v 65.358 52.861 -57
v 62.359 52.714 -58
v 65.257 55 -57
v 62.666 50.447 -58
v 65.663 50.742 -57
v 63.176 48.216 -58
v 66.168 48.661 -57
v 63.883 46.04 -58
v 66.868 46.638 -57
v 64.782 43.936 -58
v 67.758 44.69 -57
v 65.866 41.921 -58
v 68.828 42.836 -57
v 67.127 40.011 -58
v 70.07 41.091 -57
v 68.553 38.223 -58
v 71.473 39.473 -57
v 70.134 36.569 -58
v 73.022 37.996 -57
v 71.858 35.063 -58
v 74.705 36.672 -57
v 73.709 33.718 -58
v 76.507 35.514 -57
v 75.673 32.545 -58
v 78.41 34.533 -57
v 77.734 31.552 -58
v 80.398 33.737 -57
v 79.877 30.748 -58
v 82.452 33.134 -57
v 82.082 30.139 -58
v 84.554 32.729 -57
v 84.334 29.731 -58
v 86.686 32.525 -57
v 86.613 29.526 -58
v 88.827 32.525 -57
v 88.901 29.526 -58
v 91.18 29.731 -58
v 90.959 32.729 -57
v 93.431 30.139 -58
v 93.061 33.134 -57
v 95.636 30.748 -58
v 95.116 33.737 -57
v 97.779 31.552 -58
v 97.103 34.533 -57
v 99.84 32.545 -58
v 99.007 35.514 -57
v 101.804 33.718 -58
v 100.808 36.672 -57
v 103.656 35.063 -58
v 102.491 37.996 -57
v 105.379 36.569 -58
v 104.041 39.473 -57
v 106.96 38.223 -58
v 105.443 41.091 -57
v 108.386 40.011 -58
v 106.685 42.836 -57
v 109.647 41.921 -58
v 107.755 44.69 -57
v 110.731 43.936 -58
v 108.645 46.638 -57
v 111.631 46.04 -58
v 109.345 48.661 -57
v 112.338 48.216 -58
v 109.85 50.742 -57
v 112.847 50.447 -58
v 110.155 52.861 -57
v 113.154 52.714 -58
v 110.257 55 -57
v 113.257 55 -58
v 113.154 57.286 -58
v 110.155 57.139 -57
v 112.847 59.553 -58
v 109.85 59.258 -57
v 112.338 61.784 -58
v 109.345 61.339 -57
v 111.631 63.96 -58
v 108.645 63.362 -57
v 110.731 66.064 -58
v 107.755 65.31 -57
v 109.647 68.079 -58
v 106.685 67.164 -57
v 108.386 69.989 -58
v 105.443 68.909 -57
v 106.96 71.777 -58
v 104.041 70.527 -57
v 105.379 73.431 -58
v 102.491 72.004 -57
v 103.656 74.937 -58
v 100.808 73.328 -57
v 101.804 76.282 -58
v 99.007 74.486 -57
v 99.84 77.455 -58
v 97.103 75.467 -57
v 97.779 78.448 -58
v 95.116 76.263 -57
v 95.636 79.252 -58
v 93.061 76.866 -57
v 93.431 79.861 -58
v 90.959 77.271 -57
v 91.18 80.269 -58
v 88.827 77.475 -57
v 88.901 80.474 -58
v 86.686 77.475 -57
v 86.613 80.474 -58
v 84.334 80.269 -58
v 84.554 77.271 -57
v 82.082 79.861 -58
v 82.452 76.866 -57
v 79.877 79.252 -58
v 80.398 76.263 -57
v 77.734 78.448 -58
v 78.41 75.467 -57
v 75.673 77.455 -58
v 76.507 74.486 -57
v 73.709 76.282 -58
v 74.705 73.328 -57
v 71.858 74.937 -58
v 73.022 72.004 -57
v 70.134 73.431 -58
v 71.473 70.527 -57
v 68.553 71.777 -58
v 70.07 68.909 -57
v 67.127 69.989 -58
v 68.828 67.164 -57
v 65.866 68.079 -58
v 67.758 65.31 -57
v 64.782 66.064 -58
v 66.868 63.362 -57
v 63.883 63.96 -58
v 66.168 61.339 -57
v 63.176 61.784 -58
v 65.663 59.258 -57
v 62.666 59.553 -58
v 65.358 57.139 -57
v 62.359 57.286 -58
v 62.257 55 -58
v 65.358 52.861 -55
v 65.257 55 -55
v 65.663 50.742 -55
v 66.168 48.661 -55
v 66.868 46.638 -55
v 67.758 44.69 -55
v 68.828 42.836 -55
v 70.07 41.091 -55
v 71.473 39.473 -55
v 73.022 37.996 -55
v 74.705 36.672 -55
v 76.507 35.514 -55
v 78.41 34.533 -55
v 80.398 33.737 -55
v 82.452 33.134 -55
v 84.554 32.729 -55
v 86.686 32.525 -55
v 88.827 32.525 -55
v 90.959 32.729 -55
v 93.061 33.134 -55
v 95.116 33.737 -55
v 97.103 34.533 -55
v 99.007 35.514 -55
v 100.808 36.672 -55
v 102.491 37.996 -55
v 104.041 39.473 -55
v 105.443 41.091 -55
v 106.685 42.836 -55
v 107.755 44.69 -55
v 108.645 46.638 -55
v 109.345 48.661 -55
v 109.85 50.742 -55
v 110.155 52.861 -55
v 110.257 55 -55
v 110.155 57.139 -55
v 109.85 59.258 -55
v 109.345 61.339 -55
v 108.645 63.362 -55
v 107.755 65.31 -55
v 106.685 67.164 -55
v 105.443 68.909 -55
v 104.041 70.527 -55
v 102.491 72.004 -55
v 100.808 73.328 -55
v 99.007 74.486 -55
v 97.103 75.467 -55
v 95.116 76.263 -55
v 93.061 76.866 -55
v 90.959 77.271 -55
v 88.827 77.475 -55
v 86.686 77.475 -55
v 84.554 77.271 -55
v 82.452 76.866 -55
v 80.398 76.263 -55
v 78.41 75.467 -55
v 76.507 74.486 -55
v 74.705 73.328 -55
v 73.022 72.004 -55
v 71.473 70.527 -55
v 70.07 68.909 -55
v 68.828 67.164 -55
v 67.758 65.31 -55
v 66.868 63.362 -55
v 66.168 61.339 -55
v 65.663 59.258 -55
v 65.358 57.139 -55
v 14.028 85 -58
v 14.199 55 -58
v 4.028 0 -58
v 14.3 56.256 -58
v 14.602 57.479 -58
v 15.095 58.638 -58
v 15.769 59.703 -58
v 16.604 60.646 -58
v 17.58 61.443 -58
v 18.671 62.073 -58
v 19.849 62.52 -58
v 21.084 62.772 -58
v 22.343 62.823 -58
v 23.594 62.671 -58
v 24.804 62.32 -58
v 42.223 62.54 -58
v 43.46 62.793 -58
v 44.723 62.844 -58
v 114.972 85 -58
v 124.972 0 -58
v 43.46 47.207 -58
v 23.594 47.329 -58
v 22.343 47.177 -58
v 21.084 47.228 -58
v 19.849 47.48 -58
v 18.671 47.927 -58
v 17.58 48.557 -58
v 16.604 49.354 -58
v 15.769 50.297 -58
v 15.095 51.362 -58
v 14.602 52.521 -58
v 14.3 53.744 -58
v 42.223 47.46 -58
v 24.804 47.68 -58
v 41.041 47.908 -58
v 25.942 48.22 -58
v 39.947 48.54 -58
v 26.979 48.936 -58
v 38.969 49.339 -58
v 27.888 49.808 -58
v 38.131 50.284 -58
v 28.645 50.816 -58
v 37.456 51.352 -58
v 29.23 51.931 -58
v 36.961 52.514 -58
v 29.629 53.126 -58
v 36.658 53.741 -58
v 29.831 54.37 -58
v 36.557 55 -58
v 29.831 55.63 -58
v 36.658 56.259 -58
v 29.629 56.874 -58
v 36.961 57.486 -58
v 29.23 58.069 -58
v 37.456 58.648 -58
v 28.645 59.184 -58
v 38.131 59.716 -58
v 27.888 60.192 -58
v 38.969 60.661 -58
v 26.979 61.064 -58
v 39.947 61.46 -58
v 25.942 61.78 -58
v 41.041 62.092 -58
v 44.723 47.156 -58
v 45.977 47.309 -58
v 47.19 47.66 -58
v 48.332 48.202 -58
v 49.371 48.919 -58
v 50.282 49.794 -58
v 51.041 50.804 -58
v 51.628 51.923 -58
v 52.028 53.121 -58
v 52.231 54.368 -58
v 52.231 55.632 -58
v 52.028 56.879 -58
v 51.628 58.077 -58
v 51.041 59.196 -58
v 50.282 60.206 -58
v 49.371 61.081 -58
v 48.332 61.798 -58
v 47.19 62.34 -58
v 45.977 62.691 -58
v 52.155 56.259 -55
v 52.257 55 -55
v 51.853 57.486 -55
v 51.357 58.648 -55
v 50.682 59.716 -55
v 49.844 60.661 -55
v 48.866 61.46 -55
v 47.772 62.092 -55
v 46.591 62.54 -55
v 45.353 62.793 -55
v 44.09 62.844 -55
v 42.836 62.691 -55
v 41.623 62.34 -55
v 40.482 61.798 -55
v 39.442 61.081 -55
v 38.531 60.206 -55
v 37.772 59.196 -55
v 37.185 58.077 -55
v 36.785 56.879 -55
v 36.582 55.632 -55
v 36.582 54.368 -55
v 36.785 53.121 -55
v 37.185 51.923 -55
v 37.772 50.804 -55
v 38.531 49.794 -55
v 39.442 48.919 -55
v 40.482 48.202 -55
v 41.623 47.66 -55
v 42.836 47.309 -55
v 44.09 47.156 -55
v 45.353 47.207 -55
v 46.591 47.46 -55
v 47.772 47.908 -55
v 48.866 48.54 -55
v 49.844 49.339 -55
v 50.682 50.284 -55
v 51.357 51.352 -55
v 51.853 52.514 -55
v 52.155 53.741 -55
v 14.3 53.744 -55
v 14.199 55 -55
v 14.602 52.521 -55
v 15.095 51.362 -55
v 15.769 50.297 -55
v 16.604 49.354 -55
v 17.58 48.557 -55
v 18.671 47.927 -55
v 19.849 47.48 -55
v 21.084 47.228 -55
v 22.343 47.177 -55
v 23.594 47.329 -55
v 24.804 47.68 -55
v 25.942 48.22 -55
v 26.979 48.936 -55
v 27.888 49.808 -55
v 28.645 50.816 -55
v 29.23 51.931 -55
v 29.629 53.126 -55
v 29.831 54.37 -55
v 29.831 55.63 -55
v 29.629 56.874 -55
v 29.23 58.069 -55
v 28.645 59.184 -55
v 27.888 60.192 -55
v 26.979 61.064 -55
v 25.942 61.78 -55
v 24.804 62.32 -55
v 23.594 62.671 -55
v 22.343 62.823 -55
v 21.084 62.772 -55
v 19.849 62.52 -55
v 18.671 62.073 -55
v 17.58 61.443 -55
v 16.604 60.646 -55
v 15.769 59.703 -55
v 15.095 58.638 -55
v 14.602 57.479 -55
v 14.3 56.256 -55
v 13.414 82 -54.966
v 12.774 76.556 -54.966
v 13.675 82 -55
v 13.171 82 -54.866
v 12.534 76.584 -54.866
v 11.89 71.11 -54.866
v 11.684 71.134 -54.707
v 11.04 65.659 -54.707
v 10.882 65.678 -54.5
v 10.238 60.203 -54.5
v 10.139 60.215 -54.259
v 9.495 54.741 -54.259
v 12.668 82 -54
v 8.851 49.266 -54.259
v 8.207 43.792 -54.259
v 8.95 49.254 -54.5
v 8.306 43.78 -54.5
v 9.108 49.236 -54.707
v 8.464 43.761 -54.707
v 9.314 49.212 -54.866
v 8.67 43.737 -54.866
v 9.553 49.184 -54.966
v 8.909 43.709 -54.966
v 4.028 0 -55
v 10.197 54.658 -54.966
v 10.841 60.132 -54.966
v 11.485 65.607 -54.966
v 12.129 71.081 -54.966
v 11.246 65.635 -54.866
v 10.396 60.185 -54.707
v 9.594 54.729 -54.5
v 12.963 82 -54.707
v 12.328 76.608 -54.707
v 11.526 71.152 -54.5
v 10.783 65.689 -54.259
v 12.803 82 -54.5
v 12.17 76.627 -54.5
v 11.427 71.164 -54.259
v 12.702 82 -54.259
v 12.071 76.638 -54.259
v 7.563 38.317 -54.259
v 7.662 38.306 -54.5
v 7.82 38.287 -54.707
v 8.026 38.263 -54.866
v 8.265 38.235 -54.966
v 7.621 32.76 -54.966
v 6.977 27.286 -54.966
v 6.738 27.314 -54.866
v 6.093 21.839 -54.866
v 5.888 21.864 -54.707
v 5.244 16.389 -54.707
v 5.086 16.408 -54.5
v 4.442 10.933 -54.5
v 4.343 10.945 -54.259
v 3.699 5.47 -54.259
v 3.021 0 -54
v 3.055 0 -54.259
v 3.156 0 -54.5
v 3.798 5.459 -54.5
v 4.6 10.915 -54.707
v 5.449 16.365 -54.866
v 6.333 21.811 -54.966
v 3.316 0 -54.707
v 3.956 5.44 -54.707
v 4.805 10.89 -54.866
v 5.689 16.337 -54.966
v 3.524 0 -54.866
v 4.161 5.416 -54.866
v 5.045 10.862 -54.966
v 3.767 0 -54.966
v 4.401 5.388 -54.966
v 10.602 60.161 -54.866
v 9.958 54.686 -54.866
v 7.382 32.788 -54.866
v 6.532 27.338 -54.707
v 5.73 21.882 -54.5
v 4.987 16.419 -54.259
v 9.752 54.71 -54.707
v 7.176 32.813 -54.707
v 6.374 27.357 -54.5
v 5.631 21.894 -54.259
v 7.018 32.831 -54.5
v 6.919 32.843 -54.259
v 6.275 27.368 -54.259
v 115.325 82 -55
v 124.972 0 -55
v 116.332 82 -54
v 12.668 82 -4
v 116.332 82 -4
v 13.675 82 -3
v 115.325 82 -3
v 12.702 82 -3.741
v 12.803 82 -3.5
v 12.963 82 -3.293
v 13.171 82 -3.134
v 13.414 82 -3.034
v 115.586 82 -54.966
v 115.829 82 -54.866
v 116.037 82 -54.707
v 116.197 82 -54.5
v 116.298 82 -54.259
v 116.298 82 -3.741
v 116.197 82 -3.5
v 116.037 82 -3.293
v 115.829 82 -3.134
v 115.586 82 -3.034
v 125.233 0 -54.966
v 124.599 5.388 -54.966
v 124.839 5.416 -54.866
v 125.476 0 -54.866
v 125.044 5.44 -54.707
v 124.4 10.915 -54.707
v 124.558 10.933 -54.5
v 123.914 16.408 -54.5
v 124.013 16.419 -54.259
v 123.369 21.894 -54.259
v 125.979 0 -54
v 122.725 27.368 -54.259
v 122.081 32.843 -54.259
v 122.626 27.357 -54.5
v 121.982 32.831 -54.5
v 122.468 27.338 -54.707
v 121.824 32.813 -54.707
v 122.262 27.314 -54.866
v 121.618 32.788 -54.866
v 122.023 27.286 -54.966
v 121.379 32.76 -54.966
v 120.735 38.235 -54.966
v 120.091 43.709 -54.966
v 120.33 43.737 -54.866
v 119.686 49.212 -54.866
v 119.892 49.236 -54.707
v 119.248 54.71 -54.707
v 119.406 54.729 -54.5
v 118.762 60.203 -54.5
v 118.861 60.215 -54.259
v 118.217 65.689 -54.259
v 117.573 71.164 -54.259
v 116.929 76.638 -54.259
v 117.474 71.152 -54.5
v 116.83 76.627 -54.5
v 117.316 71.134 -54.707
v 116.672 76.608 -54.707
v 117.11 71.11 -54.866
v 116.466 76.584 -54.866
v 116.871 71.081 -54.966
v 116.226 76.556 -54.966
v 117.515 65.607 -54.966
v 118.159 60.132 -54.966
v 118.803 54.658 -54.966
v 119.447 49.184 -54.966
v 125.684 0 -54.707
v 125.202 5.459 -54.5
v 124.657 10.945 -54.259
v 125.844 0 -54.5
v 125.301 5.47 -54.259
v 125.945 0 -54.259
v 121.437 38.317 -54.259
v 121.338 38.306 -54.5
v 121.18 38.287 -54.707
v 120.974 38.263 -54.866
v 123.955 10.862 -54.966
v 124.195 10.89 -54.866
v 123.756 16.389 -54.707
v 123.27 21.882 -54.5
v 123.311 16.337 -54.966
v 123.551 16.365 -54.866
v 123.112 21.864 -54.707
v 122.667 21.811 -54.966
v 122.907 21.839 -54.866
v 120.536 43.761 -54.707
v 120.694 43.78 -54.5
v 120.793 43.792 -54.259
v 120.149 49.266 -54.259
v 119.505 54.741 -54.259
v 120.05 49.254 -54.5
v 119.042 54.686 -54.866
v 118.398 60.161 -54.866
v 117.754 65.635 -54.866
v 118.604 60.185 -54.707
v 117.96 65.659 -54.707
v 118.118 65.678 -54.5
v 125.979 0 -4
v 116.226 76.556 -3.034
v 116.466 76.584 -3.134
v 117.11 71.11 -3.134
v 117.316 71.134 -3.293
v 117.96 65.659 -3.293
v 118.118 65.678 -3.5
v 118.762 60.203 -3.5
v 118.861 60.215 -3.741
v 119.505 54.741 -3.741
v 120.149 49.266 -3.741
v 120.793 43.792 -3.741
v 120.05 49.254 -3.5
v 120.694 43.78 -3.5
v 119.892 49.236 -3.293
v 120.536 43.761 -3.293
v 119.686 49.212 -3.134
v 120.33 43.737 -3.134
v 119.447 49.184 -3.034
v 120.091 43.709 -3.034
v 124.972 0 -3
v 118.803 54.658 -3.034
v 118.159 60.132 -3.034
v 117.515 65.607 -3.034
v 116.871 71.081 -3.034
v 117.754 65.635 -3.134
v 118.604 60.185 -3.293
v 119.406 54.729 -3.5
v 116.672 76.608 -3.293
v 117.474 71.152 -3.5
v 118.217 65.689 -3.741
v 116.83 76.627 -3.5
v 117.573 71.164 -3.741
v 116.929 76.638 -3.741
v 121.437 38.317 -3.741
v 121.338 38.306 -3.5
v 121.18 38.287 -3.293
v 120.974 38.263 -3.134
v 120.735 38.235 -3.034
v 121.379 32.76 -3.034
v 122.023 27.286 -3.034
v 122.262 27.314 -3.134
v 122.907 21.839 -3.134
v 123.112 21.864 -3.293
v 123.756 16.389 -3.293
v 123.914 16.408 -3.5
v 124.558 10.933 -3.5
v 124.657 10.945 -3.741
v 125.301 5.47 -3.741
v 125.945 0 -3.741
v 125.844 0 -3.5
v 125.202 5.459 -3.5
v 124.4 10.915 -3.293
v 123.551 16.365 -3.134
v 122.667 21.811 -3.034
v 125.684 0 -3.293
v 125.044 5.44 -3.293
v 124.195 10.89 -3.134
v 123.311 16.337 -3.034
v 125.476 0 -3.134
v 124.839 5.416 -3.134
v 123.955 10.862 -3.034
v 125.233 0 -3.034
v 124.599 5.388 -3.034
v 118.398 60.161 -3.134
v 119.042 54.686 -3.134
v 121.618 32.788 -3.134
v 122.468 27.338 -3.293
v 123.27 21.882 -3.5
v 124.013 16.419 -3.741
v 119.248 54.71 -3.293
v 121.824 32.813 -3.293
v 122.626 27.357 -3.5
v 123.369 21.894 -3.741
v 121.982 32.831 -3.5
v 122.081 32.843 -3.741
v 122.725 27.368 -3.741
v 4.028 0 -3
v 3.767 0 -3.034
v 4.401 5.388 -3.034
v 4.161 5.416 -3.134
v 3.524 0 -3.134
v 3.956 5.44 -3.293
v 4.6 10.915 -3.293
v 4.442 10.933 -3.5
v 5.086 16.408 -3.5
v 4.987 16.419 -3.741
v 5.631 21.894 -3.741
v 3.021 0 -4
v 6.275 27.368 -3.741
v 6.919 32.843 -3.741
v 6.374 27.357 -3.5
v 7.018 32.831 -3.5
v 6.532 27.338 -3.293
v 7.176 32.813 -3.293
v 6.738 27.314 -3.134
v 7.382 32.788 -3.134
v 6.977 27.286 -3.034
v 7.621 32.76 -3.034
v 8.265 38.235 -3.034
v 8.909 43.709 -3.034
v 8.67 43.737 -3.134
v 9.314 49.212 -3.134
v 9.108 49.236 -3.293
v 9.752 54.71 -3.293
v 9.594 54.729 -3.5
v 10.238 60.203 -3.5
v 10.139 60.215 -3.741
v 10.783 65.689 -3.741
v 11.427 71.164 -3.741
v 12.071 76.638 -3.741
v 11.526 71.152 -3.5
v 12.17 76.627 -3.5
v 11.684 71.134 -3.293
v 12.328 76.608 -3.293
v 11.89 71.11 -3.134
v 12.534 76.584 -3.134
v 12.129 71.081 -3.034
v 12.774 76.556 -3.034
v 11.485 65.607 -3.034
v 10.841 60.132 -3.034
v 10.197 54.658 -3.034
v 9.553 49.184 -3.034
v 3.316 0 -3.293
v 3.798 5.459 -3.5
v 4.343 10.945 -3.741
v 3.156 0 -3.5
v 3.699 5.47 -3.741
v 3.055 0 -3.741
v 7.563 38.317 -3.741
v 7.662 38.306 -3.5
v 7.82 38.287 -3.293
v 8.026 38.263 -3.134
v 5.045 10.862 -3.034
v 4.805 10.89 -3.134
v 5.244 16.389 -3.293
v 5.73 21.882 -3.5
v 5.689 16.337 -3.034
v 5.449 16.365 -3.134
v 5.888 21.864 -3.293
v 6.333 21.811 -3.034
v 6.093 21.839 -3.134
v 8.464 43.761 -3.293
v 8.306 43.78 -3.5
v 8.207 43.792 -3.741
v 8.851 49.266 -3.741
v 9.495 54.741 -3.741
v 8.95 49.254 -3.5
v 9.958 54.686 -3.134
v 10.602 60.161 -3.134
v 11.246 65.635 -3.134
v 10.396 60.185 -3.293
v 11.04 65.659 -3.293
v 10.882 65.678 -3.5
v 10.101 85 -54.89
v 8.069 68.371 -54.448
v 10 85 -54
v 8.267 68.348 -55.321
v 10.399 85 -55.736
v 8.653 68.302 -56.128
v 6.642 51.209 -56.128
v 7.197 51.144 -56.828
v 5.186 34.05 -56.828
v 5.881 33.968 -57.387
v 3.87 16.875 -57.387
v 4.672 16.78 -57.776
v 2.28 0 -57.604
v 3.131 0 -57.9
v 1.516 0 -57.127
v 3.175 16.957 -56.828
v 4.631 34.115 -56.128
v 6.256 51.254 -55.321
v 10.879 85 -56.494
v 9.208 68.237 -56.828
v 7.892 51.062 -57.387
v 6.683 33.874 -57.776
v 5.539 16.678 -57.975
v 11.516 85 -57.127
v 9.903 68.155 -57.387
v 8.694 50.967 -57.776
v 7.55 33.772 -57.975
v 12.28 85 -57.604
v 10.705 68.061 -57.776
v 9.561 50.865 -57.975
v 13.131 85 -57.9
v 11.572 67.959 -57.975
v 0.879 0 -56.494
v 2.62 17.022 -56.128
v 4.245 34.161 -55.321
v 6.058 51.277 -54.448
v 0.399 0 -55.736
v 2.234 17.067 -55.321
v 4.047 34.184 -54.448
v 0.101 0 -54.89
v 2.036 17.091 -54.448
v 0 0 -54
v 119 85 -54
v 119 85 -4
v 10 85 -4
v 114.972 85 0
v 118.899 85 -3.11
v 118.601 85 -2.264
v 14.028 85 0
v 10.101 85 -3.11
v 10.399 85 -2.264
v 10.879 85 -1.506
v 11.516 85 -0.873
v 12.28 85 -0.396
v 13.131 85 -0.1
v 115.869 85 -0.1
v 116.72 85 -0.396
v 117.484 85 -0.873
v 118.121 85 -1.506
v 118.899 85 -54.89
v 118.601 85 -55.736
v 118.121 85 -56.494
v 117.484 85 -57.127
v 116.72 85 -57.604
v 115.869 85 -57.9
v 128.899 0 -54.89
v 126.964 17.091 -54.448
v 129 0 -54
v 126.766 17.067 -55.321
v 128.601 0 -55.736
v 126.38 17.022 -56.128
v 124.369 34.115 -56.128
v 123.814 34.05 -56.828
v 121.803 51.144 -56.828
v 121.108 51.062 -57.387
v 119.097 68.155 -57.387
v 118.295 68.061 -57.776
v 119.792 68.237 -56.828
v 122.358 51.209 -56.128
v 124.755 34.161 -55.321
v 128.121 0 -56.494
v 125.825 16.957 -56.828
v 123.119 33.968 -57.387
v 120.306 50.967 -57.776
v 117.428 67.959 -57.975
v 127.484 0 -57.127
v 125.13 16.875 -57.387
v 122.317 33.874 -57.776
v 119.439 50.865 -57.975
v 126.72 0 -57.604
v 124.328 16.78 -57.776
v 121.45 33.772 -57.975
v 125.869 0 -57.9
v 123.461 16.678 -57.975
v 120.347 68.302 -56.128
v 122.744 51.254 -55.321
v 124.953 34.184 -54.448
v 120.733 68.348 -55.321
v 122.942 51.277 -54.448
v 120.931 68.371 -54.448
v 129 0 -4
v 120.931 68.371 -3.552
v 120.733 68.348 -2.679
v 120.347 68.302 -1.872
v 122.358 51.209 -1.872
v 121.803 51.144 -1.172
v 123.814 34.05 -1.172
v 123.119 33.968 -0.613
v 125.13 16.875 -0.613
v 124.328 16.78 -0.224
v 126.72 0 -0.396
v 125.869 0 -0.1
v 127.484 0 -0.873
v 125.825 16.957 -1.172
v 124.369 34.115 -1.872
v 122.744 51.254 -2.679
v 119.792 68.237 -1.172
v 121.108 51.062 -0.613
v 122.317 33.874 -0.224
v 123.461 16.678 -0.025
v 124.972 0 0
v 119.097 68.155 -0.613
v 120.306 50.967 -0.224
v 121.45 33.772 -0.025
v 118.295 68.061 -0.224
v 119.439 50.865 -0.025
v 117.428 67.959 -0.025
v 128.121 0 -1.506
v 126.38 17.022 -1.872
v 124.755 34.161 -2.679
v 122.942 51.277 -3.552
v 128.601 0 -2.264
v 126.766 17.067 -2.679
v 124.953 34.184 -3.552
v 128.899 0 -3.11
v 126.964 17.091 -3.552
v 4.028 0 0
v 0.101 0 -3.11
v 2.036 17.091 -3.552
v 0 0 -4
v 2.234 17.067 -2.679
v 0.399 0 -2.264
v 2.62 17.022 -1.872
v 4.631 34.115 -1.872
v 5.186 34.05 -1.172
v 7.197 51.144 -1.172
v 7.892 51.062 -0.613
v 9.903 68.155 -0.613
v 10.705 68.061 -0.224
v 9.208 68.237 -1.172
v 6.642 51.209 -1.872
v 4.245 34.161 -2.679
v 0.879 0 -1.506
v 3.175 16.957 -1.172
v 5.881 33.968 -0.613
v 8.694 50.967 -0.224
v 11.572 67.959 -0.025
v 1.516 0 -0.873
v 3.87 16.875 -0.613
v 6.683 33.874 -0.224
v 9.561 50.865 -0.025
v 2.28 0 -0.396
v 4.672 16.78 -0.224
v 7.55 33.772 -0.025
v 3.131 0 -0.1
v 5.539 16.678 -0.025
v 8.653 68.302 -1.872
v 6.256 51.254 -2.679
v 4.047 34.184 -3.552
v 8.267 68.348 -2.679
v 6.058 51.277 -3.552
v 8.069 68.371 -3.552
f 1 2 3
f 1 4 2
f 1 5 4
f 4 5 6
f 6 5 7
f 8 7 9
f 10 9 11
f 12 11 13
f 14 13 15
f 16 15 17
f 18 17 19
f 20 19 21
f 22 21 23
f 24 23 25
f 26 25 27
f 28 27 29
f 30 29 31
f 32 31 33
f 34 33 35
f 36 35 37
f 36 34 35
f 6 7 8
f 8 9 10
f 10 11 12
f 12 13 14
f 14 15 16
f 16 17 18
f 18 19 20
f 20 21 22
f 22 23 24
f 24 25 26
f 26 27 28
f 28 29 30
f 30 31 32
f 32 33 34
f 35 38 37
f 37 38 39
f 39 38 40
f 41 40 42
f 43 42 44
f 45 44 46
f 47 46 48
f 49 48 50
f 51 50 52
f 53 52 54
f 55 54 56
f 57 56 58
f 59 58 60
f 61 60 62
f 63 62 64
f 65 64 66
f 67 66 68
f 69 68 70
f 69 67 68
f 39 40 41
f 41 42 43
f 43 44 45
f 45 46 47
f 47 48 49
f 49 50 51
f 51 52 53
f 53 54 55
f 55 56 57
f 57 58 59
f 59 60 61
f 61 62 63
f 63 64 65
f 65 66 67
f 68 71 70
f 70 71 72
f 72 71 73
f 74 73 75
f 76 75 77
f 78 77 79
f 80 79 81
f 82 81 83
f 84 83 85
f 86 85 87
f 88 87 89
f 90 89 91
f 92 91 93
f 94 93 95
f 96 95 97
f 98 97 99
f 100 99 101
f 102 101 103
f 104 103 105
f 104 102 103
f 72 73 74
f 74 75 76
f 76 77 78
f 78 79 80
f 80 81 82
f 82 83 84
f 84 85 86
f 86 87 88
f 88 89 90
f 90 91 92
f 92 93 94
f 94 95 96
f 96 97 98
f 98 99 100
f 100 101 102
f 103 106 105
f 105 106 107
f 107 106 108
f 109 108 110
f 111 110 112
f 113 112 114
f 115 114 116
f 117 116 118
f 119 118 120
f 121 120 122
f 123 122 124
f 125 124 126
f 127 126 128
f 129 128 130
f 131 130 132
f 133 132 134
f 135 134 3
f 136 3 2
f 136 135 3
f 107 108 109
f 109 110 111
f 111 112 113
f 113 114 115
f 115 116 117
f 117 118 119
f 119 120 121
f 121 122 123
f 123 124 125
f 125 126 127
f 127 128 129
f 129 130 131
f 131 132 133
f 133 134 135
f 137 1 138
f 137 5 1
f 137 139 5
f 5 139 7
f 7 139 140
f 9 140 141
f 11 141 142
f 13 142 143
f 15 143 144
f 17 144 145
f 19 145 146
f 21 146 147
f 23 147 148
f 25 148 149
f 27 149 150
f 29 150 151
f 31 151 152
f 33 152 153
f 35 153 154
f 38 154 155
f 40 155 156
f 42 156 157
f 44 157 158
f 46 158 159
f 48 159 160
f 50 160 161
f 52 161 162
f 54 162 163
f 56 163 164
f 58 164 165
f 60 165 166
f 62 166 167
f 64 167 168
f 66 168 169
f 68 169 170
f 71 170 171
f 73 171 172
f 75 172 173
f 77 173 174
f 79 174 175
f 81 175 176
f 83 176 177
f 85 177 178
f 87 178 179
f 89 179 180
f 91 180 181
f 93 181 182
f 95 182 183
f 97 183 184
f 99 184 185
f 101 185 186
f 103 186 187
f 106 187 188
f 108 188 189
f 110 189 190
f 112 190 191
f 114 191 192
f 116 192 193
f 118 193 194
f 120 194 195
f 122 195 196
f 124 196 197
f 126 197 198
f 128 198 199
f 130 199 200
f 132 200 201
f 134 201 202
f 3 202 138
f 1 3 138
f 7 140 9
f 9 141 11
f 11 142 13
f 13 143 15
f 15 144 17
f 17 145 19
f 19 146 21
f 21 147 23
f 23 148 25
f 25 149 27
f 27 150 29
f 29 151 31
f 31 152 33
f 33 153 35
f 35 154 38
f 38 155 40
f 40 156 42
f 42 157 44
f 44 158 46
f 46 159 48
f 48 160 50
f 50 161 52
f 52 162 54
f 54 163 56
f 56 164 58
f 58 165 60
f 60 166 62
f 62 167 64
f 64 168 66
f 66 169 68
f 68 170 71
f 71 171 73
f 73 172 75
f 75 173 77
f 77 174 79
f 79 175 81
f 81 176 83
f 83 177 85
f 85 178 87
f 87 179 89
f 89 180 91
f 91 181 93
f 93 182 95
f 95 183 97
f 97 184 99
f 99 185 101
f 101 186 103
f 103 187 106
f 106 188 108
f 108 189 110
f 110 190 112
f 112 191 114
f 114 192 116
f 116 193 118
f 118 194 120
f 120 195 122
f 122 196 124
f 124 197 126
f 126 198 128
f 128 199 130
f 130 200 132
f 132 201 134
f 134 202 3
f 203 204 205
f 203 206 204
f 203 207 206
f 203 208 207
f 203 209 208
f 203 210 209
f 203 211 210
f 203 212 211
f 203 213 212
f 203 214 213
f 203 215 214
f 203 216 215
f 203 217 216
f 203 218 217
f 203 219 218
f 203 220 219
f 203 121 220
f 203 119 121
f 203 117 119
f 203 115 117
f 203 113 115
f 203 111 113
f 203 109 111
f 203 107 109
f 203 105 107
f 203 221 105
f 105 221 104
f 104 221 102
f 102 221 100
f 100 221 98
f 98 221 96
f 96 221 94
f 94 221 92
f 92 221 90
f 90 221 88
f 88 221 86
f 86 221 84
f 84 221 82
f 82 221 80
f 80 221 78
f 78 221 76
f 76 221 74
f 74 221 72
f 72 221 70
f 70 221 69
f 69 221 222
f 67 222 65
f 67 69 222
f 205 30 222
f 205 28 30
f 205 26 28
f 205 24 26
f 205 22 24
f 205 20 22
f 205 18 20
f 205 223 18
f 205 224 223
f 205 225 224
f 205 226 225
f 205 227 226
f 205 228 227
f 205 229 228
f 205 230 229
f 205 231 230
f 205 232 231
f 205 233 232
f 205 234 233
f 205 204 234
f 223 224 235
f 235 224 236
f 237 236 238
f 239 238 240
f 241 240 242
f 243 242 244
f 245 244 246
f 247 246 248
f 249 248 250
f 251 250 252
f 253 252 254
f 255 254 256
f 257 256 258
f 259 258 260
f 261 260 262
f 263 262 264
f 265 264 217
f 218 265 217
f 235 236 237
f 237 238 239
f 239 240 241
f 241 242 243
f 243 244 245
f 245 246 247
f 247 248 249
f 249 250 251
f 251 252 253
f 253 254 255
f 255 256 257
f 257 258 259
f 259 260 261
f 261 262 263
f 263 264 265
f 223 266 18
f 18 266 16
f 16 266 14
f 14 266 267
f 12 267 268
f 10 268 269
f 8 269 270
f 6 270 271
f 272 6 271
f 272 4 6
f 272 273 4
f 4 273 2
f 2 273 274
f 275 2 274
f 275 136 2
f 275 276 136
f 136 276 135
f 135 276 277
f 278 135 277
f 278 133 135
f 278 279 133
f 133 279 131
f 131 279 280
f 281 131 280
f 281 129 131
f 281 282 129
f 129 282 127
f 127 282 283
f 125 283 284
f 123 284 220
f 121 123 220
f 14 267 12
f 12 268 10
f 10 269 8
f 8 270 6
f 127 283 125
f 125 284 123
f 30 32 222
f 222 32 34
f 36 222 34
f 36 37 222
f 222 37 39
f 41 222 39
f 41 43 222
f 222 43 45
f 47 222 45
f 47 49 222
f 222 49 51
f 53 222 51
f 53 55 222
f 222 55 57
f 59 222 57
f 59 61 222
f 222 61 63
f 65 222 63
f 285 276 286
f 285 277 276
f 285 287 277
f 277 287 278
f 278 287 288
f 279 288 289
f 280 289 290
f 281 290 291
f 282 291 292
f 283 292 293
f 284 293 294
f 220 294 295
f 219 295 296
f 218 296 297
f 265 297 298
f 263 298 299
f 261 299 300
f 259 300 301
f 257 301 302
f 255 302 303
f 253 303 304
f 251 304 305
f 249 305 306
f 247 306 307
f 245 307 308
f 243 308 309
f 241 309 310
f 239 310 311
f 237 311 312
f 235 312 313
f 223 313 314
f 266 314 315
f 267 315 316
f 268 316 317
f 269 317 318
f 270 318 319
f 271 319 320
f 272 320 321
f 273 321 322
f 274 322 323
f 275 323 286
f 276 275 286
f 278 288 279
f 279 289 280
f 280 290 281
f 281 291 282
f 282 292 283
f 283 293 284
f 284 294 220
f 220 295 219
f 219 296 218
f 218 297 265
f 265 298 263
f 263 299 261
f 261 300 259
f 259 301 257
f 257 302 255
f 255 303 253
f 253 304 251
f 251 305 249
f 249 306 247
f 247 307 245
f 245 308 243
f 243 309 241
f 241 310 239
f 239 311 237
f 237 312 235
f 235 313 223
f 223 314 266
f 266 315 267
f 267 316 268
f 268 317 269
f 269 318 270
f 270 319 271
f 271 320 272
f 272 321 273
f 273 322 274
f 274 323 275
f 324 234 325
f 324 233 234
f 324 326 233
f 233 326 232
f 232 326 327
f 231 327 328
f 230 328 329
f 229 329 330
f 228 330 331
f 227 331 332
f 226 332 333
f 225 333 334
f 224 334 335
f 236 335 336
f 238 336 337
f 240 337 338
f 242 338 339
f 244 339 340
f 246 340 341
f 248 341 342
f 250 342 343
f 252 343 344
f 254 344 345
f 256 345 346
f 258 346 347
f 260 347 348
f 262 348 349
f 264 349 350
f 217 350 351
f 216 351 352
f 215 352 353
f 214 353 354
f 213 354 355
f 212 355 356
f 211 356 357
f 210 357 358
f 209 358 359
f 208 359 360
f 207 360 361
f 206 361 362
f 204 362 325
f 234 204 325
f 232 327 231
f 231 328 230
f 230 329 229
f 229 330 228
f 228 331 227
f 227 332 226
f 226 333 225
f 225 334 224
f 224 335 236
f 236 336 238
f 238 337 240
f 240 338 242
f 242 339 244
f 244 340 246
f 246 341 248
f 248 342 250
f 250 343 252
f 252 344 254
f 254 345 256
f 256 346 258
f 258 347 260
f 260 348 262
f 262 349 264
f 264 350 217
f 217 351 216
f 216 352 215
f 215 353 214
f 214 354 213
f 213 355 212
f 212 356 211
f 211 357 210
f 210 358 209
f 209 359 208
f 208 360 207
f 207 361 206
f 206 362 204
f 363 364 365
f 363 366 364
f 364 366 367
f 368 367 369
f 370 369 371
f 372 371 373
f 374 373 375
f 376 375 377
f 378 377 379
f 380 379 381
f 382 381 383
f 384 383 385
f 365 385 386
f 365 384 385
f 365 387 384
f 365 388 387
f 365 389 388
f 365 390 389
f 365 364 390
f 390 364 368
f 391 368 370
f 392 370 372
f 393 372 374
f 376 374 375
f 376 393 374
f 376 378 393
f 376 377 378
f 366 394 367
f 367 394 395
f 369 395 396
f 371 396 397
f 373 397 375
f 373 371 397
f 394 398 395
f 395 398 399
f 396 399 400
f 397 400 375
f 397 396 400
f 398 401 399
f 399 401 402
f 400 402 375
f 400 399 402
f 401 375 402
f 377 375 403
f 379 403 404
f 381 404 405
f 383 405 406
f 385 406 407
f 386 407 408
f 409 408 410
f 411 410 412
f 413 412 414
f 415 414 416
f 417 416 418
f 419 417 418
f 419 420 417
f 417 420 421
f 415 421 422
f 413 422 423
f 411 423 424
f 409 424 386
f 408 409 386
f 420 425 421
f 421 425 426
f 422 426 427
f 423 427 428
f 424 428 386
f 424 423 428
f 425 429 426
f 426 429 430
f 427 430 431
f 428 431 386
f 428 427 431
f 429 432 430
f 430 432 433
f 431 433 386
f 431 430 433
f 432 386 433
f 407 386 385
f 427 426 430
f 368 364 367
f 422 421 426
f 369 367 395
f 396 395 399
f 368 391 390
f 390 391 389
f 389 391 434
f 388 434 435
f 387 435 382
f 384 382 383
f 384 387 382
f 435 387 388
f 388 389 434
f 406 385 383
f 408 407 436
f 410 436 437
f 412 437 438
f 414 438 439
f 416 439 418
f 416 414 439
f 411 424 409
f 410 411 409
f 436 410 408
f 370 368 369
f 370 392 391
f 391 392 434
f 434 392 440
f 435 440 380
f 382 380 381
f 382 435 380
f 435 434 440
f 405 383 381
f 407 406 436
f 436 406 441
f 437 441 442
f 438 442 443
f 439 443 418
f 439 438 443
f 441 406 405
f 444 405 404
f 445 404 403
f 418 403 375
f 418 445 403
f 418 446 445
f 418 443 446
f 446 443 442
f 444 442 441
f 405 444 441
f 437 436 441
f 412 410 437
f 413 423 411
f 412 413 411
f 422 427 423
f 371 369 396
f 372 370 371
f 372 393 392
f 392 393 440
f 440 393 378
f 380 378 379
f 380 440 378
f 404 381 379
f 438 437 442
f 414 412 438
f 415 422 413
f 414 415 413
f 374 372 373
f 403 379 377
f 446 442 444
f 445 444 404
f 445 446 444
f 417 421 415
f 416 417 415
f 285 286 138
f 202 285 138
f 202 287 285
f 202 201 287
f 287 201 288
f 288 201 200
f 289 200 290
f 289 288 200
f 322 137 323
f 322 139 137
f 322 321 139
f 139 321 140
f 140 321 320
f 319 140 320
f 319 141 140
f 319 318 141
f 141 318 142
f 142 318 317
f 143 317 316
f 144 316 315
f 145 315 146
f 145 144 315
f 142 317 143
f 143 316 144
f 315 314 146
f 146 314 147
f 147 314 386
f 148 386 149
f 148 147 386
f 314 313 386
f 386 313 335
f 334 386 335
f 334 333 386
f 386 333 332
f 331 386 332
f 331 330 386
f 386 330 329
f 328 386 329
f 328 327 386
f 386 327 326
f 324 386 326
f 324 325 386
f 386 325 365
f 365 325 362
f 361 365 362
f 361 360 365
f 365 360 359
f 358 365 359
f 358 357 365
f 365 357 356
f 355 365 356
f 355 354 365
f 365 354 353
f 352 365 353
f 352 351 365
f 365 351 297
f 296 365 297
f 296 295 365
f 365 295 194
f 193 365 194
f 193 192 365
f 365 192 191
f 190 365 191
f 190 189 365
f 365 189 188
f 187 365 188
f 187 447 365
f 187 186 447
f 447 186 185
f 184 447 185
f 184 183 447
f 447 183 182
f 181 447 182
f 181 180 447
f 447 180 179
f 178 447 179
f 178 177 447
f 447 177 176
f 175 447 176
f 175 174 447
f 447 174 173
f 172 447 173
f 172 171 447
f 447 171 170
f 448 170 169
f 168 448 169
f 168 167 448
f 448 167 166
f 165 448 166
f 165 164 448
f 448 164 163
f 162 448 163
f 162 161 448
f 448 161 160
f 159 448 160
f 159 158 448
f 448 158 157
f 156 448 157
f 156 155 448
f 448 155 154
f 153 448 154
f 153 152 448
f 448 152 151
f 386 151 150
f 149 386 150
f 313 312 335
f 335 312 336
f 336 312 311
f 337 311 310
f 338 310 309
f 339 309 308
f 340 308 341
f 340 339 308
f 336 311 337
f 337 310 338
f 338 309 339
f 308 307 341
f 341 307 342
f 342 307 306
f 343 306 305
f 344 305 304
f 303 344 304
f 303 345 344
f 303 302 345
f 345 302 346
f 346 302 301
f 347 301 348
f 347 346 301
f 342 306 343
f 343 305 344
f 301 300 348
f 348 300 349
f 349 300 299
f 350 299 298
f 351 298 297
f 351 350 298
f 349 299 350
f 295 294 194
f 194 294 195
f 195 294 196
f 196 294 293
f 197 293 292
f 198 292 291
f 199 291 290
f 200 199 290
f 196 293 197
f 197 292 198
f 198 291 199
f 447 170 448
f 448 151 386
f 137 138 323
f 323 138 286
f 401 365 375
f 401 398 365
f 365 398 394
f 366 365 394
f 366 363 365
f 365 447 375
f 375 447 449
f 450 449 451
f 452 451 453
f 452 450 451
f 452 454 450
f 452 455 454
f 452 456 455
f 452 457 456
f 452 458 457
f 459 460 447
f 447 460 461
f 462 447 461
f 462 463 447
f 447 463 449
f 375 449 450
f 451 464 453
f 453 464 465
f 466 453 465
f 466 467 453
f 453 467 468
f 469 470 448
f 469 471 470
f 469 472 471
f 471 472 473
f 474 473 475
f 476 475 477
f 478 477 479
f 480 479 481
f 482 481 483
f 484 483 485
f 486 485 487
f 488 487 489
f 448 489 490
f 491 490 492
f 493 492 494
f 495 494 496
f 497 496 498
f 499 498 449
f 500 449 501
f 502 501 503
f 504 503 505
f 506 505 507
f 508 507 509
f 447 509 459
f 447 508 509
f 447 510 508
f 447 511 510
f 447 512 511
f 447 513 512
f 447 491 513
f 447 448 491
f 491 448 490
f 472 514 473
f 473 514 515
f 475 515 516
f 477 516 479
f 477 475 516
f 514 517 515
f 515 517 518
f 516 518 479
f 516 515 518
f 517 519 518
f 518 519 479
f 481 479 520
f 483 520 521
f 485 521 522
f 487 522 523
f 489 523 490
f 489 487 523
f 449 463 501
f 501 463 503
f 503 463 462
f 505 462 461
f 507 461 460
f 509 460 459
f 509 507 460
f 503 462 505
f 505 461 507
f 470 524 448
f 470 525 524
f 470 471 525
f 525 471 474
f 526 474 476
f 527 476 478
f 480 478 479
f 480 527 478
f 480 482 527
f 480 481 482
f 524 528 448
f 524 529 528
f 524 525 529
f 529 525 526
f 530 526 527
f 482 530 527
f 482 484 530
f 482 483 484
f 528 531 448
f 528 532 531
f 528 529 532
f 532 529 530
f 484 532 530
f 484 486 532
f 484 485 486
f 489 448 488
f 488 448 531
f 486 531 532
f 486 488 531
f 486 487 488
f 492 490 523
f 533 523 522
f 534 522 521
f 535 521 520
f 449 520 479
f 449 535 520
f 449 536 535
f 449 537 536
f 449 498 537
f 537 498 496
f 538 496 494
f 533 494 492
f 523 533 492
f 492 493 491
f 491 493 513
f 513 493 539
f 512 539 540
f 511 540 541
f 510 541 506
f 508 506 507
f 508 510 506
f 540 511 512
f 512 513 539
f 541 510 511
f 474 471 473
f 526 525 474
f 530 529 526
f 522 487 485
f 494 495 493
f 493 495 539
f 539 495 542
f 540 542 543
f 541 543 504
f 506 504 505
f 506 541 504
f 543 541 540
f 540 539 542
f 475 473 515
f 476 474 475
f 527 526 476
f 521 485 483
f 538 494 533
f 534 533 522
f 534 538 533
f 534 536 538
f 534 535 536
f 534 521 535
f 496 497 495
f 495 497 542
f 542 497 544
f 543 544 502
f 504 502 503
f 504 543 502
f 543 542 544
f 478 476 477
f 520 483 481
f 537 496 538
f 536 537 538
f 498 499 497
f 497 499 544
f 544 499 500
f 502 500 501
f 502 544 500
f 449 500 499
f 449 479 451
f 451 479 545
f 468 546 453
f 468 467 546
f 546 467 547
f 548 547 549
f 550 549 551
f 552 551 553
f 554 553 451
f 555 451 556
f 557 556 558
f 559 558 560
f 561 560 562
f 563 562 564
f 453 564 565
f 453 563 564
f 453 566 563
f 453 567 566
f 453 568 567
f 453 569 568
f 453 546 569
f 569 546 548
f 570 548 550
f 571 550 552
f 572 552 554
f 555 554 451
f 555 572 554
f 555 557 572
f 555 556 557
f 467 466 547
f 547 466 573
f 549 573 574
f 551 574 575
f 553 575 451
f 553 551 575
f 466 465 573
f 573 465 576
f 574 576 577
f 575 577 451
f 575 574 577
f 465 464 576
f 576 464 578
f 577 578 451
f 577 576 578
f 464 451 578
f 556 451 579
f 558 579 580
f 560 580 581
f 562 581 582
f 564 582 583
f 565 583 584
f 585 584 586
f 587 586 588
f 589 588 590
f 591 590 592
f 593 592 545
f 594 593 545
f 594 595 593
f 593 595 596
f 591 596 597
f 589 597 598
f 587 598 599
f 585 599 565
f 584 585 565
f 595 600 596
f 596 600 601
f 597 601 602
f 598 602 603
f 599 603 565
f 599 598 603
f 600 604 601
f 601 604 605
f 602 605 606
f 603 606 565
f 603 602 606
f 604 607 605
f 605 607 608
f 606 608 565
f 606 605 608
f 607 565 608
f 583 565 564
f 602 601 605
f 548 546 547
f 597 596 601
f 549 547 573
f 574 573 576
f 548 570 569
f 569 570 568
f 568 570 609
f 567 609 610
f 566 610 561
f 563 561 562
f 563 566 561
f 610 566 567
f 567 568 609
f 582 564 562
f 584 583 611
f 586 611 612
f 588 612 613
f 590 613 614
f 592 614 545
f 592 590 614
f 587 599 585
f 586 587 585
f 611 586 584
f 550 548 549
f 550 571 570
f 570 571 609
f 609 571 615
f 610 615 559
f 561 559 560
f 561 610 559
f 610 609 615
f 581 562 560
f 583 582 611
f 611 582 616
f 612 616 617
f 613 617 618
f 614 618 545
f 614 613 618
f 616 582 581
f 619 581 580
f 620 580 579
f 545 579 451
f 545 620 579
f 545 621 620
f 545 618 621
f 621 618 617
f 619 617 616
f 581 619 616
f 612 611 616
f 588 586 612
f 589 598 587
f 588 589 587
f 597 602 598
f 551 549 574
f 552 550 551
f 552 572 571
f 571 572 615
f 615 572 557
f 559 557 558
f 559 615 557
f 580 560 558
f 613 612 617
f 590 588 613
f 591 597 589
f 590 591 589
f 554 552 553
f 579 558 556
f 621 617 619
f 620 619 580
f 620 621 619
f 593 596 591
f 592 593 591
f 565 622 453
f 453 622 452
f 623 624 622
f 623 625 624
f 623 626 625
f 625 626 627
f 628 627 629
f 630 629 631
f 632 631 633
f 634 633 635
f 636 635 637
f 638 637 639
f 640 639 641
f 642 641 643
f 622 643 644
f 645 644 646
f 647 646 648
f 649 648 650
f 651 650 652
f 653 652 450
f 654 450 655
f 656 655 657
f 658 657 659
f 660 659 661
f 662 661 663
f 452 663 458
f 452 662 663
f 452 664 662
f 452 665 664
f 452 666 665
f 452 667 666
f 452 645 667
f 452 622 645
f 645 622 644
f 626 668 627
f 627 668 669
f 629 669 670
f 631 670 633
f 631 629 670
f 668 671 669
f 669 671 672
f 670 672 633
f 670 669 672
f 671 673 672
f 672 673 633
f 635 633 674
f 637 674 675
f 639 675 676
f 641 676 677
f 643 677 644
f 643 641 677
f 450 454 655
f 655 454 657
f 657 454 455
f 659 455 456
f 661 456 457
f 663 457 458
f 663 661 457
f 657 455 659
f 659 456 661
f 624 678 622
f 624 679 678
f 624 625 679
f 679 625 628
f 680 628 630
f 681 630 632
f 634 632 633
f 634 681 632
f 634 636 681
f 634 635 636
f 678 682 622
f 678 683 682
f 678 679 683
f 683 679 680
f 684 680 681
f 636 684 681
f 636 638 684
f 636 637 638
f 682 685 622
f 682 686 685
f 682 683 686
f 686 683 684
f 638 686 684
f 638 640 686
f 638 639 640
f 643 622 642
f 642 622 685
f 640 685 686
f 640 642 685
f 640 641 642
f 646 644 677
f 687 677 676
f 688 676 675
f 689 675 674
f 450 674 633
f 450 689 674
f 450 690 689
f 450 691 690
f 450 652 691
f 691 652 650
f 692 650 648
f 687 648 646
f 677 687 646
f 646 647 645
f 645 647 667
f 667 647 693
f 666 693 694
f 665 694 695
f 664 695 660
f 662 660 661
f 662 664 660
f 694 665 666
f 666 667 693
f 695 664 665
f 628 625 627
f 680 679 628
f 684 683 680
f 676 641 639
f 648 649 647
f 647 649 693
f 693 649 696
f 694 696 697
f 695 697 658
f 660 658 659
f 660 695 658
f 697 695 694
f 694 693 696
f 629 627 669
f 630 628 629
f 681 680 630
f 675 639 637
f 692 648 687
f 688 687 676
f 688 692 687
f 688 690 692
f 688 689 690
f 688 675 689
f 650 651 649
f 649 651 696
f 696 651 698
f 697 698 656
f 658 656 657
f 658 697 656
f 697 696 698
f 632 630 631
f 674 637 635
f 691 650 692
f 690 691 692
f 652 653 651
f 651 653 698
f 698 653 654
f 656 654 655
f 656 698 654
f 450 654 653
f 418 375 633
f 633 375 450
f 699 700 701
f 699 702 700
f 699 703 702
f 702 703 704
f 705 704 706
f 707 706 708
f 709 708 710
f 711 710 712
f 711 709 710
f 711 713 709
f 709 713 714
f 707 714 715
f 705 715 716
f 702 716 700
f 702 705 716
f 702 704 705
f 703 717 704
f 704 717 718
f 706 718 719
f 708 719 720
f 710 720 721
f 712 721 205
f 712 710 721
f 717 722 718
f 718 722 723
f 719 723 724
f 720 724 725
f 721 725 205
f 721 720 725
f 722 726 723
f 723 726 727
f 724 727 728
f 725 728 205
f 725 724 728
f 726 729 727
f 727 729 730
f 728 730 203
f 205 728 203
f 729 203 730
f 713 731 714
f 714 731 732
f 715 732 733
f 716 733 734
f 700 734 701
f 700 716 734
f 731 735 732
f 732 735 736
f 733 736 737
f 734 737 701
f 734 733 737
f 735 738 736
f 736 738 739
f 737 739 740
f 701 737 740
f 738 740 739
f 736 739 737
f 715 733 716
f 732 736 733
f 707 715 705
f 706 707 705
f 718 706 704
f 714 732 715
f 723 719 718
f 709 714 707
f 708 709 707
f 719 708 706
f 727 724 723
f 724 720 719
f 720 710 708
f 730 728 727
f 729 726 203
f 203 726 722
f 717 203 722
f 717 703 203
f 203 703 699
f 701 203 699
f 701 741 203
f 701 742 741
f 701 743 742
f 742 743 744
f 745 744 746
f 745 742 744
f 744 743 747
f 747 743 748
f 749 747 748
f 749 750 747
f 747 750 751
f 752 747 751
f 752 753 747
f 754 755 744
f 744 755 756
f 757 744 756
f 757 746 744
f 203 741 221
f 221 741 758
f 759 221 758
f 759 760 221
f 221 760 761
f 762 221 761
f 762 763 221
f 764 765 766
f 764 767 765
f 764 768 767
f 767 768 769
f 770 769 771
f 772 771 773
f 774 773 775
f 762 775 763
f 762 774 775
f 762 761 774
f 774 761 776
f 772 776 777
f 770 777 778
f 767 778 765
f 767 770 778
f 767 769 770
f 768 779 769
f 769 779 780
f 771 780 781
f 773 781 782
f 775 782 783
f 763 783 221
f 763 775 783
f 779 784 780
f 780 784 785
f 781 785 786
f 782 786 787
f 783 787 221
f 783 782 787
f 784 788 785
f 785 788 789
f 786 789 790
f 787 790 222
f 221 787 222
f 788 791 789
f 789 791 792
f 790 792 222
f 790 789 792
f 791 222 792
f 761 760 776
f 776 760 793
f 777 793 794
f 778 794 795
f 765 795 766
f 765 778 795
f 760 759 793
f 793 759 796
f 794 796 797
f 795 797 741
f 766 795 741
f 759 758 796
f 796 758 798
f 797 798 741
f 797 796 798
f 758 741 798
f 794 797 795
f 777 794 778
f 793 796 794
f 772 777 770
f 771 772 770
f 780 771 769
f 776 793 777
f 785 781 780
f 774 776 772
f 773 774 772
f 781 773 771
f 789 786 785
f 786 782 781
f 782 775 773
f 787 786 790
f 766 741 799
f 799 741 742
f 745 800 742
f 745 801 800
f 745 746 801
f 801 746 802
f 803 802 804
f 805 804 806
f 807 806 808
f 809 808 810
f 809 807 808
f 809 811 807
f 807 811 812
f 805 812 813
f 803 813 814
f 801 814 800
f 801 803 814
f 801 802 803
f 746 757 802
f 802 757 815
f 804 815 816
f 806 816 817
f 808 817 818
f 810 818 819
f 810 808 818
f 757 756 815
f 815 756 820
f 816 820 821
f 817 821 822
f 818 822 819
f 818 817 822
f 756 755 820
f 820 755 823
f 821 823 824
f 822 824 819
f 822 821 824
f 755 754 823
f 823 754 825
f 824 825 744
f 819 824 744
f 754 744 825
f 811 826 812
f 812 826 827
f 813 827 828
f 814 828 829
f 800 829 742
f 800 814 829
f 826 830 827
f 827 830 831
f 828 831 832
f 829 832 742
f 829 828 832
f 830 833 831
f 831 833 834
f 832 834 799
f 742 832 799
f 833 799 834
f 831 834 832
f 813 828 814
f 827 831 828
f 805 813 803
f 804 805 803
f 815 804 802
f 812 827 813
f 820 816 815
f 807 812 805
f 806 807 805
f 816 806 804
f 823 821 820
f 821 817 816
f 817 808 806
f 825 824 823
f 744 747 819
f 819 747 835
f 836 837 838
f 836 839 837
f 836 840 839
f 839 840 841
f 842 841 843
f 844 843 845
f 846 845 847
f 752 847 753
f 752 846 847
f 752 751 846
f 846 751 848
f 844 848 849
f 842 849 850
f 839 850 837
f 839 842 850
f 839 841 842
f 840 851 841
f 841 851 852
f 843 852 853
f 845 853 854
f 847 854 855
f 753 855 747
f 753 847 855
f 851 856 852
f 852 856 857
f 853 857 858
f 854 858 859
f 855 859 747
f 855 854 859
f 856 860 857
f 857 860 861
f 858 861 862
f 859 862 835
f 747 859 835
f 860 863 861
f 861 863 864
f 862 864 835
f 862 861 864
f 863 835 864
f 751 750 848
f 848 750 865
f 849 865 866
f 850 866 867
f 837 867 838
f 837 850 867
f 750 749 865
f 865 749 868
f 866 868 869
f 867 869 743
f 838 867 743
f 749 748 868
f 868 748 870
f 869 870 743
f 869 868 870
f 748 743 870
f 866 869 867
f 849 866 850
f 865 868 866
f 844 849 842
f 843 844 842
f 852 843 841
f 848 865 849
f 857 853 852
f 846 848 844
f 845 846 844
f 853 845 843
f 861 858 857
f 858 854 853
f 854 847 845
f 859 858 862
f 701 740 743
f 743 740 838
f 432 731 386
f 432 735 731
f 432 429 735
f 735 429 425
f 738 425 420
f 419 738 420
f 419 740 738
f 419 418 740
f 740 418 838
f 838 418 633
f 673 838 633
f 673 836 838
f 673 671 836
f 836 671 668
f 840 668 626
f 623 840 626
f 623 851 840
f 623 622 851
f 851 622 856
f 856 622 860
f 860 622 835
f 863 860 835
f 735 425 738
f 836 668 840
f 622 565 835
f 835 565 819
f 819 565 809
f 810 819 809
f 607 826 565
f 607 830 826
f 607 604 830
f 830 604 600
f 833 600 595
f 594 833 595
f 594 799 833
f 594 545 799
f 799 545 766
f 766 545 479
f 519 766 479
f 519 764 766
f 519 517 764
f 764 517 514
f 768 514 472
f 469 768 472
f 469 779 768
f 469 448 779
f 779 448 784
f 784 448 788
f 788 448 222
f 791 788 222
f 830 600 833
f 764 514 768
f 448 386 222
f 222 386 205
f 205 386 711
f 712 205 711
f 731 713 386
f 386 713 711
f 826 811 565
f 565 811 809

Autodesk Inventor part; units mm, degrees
ref_plane "YZ Plane" through (0, 0, 0) normal (1, 0, 0) x (0, 1, 0)
ref_plane "XZ Plane" through (0, 0, 0) normal (0, 1, 0) x (-1, 0, 0)
ref_plane "XY Plane" through (0, 0, 0) normal (0, 0, 1) x (1, 0, 0)
sketch "Sketch1" plane through (0, 0, 0) normal (0, 0, 1) x (1, 0, 0)
  line L0 (0, 0) -> (129, 0)
  line L1 (129, 0) -> (129, 85)
  line L2 (129, 85) -> (0, 85)
  line L3 (0, 85) -> (0, 0)
  line L4 (0, 85) -> (10, 85)
  line L5 (10, 85) -> (0, 0)
  line L6 (129, 85) -> (119, 85)
  line L7 (119, 85) -> (129, 0)
  dimension "d0" = 129
  dimension "d1" = 85
  dimension "d2" = 10
  dimension "d3" = 10
extrude "Extrusion1" add sketch "Sketch1" against normal blind 58 contours L5 L2 L7 L0
fillet "Fillet1" radius 4 4 edges at (5, 42.5, 0) (124, 42.5, 0) (124, 42.5, -58) (5, 42.5, -58)
shell "Shell1" thickness 3 removed faces 1 at (44.3425, 0, -19.3333)
sketch "Sketch2" plane through (0, 0, -58) normal (0, 0, -1) x (-1, 0, 0)
  line L0 (-14.0276, 85) -> (-114.9724, 85) projected
  line L1 (-124.9724, 0) -> (-4.0276, 0) projected
  line L2 (-22.0276, 0) -> (-22.0276, 55)
  line L3 (-22.0276, 55) -> (-22.0276, 55)
  circle A0 centre (-22.0276, 55) radius 7.829
  line L4 (-29.8566, 55) -> (-36.5566, 55)
  line L5 (-36.5566, 55) -> (-44.4066, 55)
  circle A1 centre (-44.4066, 55) radius 7.85
  line L6 (-52.2566, 55) -> (-87.7566, 55)
  circle A2 centre (-87.7566, 55) radius 22.5
  line L7 (-4.0276, 0) -> (-22.0276, 0)
  point P0 (0, 0)
  dimension "d10" = 15.6579
  dimension "d8" = 55
  dimension "d9" = 0
  dimension "d11" = 6.7
  dimension "d12" = 7.85
  dimension "d13" = 35.5
  dimension "d14" = 45
  dimension "d15" = 18
extrude "Extrusion2" cut sketch "Sketch2" against normal blind 5
chamfer "Chamfer1" distance 3 distance2 1 1 edges at (110.2566, 55, -58) measured on face at (69.5927, 11.3207, -58)
properties part number "Box MKIV Version 1"
